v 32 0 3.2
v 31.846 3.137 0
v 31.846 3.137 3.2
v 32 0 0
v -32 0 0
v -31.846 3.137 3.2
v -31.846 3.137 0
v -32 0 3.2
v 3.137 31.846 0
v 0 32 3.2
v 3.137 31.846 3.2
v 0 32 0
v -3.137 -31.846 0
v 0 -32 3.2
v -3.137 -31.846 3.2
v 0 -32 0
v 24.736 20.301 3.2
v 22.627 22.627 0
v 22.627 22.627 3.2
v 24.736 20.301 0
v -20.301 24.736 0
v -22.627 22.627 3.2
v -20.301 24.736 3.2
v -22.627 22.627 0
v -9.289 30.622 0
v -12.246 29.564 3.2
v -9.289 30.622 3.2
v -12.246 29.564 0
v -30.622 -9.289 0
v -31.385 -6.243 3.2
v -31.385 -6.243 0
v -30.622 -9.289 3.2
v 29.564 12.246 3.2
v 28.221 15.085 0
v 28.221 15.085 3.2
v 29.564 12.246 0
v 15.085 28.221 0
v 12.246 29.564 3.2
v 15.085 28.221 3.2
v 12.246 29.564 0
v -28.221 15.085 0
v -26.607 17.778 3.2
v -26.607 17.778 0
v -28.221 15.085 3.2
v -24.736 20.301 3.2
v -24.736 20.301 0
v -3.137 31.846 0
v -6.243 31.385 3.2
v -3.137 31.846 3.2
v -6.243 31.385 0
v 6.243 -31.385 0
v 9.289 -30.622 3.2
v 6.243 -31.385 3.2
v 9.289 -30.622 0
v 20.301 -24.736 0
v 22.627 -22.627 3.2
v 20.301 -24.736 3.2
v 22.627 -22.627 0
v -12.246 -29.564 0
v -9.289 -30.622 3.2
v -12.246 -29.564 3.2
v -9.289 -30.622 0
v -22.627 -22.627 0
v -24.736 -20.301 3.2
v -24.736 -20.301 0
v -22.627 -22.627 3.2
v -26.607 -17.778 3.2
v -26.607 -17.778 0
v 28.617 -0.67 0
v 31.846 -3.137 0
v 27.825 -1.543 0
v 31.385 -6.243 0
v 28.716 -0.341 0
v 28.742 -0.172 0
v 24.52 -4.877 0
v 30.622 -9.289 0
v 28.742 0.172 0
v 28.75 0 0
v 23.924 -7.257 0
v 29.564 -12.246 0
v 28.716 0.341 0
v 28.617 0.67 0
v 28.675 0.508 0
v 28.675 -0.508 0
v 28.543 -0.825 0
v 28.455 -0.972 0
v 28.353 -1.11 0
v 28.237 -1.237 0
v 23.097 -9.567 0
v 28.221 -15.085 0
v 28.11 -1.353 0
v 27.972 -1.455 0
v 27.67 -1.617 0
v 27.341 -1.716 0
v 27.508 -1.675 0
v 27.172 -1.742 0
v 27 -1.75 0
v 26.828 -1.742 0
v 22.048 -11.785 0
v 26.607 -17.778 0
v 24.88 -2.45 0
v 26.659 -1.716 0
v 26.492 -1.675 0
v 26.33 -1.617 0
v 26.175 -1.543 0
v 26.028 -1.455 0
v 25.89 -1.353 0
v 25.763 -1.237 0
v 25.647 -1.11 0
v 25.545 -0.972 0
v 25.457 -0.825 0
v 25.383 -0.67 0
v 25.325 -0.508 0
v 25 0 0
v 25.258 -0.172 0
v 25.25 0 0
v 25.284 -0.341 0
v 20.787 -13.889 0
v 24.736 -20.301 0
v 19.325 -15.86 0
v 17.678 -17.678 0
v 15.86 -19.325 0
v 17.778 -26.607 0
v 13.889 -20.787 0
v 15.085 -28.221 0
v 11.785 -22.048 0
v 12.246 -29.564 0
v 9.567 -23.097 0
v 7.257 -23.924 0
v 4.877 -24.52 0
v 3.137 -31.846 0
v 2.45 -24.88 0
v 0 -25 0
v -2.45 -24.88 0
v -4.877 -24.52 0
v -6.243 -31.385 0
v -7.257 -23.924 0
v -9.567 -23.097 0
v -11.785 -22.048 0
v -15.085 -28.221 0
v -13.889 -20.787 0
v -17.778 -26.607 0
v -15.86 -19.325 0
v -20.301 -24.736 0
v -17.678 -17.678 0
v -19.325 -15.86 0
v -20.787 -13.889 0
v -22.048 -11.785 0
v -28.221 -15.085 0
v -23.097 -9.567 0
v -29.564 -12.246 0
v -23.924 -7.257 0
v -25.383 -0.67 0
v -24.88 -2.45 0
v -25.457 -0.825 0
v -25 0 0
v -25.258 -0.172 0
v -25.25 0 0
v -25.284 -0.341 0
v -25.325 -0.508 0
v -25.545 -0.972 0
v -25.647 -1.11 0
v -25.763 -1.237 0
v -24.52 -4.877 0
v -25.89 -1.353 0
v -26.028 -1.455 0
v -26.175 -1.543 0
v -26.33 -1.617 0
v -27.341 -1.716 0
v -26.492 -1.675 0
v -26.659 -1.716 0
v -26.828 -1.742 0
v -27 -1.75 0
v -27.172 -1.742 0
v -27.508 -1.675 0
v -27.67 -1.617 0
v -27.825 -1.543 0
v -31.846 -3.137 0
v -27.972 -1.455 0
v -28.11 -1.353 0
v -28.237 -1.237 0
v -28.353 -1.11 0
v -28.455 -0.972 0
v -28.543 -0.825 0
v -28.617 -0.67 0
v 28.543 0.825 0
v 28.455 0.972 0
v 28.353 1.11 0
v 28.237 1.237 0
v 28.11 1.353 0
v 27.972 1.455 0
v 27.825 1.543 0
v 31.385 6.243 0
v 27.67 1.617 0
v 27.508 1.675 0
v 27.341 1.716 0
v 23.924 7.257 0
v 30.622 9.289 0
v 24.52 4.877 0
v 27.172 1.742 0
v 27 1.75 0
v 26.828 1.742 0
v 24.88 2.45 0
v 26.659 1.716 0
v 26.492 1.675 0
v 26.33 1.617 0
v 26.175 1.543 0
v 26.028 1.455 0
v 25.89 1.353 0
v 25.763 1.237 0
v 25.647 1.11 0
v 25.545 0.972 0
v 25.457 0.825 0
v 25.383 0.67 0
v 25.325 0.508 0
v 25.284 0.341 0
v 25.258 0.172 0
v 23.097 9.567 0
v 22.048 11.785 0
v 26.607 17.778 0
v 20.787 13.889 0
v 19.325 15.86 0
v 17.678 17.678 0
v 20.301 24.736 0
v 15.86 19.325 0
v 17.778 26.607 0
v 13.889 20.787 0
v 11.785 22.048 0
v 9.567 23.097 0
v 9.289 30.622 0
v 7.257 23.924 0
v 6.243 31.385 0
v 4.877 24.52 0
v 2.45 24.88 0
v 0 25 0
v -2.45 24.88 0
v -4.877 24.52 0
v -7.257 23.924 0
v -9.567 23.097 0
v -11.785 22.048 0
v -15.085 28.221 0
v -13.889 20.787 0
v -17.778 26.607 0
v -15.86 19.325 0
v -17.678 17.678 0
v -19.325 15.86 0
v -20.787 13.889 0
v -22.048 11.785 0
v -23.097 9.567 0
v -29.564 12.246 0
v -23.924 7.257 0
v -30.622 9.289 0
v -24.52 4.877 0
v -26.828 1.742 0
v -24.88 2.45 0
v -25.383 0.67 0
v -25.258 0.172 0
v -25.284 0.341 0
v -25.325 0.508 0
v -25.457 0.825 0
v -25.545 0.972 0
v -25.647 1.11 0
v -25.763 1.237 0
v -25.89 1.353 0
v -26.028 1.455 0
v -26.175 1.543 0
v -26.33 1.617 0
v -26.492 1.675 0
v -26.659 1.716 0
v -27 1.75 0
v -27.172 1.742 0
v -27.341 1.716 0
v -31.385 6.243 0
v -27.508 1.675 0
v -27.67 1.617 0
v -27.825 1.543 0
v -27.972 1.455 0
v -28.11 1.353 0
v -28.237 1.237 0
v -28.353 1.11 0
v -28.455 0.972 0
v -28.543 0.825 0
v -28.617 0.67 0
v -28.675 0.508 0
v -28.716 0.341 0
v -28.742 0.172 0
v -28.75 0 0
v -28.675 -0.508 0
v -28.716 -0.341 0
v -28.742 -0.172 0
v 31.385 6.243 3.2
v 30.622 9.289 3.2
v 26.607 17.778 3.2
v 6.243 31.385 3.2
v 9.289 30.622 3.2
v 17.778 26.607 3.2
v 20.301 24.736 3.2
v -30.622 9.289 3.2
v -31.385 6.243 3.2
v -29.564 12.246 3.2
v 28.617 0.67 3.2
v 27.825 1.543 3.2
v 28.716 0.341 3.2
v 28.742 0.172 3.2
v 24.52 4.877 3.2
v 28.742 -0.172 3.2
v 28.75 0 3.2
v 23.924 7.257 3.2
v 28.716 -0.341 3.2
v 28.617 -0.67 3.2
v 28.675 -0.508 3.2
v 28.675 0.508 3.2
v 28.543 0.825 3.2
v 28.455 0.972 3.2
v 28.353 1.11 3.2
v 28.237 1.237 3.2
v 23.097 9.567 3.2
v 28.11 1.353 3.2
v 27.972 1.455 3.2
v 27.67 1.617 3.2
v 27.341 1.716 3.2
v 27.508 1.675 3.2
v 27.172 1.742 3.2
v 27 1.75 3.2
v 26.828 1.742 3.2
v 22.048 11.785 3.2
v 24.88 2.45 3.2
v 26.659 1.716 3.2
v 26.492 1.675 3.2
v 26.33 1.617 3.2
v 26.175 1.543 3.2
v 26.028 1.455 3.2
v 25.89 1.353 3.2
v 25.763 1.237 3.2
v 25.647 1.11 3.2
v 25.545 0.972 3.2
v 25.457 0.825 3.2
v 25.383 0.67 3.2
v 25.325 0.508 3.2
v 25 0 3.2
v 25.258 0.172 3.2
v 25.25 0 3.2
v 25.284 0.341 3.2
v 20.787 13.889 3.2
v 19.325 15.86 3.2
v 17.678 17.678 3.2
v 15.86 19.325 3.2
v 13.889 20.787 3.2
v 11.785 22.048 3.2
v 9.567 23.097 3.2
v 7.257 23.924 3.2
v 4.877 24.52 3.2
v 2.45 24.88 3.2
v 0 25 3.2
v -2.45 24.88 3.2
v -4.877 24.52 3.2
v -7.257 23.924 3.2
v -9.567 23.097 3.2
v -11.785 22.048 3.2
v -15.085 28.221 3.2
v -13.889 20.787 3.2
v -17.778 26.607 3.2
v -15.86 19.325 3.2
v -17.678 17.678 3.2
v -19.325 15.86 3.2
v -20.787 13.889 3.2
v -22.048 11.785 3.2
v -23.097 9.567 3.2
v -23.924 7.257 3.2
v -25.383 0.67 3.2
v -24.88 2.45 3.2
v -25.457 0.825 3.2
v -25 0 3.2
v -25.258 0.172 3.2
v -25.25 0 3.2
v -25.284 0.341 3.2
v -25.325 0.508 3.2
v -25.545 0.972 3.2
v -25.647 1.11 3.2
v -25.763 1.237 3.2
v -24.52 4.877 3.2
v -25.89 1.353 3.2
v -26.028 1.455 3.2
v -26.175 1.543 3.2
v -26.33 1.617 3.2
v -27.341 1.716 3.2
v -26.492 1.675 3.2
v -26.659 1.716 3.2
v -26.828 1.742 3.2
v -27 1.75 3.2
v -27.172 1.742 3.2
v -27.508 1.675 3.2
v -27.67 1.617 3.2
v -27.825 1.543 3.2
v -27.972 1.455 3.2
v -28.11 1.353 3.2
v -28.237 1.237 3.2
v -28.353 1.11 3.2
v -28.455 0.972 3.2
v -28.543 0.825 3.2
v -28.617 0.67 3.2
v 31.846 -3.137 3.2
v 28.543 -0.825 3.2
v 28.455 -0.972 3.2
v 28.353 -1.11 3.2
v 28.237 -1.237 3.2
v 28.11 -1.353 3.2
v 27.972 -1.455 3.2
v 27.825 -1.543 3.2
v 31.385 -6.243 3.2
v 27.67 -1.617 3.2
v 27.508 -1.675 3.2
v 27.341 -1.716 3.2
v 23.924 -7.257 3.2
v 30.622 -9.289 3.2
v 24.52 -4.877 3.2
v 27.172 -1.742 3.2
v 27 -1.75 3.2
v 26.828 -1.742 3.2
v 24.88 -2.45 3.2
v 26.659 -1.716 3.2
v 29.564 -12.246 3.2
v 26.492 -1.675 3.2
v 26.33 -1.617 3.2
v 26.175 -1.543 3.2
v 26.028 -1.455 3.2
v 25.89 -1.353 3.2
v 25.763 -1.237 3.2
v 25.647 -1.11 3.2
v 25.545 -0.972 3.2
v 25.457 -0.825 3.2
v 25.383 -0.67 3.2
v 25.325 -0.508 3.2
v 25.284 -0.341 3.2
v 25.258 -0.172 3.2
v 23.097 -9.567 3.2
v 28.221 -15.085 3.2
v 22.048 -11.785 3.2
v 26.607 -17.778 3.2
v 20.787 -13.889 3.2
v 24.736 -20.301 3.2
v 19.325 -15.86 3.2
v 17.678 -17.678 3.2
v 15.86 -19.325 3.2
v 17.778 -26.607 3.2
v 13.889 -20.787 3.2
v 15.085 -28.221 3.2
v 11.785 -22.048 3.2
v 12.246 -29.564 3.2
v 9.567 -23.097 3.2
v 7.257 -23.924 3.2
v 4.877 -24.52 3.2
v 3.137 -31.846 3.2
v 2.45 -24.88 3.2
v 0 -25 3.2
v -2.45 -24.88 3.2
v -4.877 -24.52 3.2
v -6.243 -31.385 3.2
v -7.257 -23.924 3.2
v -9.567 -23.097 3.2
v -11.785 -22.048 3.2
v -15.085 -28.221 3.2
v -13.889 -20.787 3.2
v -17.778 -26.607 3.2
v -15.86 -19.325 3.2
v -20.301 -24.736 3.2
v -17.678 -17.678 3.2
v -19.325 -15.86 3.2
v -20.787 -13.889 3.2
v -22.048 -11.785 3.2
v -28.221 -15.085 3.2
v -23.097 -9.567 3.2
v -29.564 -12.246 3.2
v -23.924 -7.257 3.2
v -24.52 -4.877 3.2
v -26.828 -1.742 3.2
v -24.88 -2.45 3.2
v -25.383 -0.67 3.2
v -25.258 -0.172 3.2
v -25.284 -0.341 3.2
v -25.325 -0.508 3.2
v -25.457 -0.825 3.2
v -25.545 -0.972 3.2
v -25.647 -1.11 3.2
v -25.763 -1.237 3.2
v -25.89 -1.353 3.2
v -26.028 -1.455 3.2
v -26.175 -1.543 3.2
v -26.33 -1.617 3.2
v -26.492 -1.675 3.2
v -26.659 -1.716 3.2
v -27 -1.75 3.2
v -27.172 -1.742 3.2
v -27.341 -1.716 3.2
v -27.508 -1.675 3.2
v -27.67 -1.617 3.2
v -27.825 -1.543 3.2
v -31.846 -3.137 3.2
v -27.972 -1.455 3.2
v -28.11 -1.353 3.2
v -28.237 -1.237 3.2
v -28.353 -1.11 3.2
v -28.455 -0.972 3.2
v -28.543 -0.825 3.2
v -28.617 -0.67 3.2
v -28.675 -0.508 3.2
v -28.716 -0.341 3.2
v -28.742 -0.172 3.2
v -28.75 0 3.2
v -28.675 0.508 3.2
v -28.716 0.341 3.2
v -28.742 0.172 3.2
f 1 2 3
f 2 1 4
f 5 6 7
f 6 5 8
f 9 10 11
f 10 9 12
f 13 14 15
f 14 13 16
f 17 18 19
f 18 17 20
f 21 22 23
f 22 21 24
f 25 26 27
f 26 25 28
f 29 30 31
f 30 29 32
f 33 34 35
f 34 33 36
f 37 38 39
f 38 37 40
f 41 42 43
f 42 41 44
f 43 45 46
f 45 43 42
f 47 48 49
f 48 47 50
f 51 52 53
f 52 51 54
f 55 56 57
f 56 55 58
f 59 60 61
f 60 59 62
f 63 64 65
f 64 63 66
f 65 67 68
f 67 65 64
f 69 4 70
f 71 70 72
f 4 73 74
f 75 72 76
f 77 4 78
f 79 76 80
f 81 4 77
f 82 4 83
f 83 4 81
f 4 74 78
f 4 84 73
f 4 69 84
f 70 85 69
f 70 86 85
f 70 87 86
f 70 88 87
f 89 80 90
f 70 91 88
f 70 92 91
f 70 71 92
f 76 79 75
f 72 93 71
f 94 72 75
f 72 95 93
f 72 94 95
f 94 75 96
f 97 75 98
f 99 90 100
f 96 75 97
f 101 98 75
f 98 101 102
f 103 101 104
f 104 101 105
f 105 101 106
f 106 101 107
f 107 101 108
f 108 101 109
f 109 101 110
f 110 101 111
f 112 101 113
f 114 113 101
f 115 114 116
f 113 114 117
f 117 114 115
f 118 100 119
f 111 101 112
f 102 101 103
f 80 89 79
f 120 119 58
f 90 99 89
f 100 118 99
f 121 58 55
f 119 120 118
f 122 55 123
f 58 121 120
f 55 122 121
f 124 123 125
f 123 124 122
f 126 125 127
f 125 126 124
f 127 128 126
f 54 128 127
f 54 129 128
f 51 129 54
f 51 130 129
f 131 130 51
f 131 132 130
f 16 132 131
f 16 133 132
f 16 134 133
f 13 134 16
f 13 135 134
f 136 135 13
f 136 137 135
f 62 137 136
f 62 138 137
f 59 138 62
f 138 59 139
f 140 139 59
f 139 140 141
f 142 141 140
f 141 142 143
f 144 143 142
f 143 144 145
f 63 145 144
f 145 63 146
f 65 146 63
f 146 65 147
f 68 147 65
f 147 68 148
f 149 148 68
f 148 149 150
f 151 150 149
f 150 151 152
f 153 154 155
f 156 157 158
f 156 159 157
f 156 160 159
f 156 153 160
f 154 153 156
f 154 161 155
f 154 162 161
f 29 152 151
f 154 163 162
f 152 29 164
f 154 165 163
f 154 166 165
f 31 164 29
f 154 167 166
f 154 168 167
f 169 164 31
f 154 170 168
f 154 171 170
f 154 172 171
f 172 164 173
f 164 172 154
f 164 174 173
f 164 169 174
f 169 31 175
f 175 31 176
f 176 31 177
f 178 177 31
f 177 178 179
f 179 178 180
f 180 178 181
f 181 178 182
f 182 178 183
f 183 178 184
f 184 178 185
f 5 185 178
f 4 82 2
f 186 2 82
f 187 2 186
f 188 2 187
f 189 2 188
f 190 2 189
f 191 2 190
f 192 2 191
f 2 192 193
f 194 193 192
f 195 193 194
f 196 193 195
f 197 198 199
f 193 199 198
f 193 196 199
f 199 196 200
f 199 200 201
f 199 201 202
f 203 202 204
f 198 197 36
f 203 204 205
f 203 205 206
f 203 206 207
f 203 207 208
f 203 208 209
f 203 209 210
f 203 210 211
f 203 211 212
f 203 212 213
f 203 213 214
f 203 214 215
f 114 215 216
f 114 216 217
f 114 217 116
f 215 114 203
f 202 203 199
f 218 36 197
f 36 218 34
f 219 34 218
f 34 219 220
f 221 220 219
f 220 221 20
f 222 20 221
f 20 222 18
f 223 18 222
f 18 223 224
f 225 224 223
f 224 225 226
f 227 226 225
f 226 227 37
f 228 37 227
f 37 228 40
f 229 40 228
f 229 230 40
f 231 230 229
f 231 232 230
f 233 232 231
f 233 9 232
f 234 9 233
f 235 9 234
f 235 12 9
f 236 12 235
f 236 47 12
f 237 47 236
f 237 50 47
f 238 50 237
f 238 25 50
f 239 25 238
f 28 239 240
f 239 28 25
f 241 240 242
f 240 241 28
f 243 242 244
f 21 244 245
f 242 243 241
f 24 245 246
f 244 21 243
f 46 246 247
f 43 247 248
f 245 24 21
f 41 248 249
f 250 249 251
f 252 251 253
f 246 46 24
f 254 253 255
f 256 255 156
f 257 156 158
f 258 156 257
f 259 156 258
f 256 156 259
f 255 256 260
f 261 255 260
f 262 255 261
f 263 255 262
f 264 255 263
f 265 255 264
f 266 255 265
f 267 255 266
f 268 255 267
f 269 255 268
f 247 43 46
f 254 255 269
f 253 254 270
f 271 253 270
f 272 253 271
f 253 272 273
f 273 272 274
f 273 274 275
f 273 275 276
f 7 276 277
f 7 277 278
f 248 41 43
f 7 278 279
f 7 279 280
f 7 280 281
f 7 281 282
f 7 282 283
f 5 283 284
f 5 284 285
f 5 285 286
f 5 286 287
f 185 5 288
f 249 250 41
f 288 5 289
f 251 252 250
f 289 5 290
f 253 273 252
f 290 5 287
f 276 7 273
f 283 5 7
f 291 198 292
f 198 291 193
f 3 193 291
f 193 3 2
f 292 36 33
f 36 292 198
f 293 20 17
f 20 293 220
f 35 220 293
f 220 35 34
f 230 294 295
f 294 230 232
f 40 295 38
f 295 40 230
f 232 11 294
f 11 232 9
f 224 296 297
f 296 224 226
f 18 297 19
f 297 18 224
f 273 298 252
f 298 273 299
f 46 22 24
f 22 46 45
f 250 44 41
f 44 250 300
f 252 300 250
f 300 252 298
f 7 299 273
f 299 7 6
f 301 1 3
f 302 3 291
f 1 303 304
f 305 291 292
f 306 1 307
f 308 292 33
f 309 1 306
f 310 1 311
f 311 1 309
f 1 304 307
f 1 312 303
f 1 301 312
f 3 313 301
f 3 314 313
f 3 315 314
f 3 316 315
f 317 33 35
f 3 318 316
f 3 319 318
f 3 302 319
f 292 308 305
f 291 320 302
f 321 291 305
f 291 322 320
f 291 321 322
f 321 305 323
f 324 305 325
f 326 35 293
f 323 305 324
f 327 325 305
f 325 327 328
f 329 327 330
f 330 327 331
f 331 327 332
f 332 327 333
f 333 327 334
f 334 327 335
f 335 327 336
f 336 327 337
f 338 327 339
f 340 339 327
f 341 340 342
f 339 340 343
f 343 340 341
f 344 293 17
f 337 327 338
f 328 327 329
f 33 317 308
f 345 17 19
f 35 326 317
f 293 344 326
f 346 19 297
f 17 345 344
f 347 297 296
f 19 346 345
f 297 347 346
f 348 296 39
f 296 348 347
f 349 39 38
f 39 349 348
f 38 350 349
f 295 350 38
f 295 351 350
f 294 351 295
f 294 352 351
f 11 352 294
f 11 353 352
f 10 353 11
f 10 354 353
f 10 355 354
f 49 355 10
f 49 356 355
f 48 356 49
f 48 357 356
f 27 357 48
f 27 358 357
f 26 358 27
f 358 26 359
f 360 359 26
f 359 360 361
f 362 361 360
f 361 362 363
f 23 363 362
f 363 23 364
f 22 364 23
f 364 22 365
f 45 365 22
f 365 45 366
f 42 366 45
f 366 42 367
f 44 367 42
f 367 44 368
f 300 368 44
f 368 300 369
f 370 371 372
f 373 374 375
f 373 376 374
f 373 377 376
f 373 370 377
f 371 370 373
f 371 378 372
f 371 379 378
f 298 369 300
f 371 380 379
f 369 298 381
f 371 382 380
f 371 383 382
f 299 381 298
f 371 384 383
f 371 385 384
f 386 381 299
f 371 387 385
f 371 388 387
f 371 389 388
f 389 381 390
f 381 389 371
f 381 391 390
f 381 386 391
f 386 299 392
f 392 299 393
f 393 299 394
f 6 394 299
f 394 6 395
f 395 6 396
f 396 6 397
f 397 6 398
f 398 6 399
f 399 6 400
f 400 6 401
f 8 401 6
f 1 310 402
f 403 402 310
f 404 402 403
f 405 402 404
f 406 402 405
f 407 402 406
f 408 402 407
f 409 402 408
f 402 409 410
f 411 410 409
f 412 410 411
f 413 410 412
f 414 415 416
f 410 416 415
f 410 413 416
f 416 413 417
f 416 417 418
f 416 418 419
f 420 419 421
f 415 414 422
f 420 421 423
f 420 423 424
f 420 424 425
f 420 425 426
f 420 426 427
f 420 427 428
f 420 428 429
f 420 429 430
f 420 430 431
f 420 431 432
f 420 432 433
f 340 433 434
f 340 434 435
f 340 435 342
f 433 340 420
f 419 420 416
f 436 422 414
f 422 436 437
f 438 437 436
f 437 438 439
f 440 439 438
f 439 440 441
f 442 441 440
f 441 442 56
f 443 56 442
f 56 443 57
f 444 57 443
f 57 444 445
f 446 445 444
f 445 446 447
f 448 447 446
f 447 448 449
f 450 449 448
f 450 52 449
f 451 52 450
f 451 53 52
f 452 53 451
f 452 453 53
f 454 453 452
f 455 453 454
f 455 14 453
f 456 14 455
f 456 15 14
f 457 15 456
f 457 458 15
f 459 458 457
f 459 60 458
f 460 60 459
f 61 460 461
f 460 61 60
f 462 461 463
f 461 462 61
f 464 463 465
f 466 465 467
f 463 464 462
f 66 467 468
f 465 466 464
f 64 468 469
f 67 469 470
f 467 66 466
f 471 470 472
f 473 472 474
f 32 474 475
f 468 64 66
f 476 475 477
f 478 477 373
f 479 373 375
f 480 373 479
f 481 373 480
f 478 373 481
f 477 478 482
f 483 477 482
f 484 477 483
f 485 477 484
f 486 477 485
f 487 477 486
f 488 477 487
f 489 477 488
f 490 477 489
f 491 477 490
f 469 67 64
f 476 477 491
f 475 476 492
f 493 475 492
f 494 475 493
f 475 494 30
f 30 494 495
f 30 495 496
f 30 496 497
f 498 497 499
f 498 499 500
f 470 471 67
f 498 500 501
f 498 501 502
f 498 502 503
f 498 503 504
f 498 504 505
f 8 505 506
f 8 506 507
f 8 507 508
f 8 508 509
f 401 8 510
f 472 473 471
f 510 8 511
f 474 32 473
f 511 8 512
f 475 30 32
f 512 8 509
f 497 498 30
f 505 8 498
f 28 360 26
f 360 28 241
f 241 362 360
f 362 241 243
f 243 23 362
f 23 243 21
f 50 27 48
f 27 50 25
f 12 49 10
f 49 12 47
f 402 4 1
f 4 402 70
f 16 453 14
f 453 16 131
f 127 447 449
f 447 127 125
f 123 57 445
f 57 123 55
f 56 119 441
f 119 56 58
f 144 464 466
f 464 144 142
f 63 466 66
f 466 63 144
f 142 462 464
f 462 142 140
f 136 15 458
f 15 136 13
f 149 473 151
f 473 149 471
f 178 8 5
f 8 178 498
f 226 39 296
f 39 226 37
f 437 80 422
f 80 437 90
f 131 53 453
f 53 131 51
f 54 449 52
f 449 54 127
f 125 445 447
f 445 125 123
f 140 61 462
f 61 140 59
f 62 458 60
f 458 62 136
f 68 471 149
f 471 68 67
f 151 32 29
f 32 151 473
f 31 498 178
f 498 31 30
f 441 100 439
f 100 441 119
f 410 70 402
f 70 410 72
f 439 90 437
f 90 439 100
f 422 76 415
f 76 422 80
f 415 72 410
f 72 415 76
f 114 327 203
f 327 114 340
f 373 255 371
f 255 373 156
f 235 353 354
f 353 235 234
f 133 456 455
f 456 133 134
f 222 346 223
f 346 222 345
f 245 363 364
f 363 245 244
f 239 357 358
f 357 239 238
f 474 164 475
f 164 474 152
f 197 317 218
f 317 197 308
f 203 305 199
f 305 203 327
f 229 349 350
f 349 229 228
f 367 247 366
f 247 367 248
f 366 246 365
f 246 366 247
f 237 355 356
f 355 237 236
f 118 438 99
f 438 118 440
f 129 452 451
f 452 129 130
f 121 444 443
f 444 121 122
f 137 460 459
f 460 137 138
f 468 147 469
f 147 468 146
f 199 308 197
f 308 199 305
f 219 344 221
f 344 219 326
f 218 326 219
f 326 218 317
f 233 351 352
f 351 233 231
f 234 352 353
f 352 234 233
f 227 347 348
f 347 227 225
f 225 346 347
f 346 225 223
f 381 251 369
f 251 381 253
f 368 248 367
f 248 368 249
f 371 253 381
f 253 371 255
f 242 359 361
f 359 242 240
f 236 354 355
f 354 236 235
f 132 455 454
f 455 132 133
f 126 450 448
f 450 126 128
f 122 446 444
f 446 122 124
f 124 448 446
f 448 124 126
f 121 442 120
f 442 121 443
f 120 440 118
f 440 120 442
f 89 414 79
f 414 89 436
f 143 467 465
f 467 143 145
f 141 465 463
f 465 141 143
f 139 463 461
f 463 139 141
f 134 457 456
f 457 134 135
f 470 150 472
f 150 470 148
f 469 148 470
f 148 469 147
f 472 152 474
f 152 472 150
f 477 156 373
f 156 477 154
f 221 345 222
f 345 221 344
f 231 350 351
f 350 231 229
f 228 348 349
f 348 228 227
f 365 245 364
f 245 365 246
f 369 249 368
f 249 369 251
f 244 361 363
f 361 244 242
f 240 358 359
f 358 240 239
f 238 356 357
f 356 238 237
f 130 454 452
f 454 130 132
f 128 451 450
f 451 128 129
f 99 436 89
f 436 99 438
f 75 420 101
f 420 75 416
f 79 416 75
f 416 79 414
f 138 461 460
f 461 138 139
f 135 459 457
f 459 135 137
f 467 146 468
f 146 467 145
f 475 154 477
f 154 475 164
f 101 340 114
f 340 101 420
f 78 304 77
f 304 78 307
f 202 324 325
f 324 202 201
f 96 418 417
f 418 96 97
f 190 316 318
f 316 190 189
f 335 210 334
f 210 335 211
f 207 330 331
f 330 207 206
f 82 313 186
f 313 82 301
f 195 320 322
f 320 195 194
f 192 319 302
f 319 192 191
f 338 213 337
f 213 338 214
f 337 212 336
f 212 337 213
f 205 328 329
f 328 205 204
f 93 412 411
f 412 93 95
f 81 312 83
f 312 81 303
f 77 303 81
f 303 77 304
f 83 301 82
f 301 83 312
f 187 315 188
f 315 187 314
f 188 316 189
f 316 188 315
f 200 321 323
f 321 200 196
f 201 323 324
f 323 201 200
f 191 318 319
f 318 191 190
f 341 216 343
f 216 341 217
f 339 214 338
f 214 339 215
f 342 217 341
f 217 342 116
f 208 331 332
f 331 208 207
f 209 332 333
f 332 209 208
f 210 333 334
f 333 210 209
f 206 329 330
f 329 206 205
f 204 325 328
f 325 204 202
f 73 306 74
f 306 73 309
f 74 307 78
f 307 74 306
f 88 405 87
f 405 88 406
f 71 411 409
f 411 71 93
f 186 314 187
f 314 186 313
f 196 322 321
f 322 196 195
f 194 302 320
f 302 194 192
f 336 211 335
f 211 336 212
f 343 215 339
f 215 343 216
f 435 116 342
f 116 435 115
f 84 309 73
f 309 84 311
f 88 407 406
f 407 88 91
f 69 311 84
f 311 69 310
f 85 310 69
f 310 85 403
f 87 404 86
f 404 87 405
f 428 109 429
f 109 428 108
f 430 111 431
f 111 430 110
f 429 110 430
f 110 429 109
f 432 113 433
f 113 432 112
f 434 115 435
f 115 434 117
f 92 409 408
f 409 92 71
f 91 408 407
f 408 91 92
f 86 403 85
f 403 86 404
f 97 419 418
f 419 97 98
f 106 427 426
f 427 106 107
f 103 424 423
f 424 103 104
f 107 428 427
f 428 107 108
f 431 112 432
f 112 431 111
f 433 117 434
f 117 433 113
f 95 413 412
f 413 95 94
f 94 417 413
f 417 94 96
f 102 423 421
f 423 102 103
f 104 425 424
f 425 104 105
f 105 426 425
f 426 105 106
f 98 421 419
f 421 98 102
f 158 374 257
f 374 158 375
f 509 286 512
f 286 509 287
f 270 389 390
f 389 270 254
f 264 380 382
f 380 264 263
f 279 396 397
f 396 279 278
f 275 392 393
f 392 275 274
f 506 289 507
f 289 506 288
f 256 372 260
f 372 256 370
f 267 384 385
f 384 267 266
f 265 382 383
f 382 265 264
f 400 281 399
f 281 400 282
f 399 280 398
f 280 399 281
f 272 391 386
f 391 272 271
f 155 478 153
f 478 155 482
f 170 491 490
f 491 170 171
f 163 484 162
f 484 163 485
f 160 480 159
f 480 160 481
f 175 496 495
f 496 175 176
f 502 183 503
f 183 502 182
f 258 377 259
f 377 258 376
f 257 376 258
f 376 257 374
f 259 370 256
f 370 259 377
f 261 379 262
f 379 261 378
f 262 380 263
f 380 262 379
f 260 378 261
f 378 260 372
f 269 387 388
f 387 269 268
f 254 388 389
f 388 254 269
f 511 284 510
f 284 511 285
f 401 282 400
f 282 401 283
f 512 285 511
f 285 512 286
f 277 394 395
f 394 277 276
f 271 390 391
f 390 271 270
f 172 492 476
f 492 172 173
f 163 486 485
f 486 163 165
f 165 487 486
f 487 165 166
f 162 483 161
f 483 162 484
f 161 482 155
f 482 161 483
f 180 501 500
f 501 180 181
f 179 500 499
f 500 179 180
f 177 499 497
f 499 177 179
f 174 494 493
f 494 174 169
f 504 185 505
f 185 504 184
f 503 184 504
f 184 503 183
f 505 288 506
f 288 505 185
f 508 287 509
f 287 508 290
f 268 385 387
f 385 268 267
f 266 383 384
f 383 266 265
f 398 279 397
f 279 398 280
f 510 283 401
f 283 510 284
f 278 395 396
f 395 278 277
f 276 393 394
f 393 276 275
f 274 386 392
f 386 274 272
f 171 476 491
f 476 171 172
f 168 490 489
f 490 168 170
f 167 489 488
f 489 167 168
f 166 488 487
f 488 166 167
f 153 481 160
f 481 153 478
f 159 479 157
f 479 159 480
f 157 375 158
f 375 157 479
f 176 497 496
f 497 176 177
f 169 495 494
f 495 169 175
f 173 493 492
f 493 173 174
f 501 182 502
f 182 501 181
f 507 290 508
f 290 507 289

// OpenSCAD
// Definition size of housing
// **************************

intdia      = 60;    
lensdia      = 42;     
height     = 19;
recess     = 2.4;
wall        = 2;
overlap = 10;

radius     = 1.2;            
act_x      = 2.4;
act_y      = 2.4;
act_z      = 4;

act_clip_w=1;

//Definition of circle angular resolution
resol        = 64;           // Identical to housing !!!


difference () {

    cylinder ( h=3.2, r=wall+intdia/2, $fn = resol);
    
    cylinder ( h=3.2, r=50/2, $fn = resol);
    
    translate ([27,0,0]) cylinder( h=4, r=1.75, $fn = resol);
    translate ([-27,0,0]) cylinder( h=4, r=1.75, $fn = resol);



   // Space for Breakouts, holes, ...


};
